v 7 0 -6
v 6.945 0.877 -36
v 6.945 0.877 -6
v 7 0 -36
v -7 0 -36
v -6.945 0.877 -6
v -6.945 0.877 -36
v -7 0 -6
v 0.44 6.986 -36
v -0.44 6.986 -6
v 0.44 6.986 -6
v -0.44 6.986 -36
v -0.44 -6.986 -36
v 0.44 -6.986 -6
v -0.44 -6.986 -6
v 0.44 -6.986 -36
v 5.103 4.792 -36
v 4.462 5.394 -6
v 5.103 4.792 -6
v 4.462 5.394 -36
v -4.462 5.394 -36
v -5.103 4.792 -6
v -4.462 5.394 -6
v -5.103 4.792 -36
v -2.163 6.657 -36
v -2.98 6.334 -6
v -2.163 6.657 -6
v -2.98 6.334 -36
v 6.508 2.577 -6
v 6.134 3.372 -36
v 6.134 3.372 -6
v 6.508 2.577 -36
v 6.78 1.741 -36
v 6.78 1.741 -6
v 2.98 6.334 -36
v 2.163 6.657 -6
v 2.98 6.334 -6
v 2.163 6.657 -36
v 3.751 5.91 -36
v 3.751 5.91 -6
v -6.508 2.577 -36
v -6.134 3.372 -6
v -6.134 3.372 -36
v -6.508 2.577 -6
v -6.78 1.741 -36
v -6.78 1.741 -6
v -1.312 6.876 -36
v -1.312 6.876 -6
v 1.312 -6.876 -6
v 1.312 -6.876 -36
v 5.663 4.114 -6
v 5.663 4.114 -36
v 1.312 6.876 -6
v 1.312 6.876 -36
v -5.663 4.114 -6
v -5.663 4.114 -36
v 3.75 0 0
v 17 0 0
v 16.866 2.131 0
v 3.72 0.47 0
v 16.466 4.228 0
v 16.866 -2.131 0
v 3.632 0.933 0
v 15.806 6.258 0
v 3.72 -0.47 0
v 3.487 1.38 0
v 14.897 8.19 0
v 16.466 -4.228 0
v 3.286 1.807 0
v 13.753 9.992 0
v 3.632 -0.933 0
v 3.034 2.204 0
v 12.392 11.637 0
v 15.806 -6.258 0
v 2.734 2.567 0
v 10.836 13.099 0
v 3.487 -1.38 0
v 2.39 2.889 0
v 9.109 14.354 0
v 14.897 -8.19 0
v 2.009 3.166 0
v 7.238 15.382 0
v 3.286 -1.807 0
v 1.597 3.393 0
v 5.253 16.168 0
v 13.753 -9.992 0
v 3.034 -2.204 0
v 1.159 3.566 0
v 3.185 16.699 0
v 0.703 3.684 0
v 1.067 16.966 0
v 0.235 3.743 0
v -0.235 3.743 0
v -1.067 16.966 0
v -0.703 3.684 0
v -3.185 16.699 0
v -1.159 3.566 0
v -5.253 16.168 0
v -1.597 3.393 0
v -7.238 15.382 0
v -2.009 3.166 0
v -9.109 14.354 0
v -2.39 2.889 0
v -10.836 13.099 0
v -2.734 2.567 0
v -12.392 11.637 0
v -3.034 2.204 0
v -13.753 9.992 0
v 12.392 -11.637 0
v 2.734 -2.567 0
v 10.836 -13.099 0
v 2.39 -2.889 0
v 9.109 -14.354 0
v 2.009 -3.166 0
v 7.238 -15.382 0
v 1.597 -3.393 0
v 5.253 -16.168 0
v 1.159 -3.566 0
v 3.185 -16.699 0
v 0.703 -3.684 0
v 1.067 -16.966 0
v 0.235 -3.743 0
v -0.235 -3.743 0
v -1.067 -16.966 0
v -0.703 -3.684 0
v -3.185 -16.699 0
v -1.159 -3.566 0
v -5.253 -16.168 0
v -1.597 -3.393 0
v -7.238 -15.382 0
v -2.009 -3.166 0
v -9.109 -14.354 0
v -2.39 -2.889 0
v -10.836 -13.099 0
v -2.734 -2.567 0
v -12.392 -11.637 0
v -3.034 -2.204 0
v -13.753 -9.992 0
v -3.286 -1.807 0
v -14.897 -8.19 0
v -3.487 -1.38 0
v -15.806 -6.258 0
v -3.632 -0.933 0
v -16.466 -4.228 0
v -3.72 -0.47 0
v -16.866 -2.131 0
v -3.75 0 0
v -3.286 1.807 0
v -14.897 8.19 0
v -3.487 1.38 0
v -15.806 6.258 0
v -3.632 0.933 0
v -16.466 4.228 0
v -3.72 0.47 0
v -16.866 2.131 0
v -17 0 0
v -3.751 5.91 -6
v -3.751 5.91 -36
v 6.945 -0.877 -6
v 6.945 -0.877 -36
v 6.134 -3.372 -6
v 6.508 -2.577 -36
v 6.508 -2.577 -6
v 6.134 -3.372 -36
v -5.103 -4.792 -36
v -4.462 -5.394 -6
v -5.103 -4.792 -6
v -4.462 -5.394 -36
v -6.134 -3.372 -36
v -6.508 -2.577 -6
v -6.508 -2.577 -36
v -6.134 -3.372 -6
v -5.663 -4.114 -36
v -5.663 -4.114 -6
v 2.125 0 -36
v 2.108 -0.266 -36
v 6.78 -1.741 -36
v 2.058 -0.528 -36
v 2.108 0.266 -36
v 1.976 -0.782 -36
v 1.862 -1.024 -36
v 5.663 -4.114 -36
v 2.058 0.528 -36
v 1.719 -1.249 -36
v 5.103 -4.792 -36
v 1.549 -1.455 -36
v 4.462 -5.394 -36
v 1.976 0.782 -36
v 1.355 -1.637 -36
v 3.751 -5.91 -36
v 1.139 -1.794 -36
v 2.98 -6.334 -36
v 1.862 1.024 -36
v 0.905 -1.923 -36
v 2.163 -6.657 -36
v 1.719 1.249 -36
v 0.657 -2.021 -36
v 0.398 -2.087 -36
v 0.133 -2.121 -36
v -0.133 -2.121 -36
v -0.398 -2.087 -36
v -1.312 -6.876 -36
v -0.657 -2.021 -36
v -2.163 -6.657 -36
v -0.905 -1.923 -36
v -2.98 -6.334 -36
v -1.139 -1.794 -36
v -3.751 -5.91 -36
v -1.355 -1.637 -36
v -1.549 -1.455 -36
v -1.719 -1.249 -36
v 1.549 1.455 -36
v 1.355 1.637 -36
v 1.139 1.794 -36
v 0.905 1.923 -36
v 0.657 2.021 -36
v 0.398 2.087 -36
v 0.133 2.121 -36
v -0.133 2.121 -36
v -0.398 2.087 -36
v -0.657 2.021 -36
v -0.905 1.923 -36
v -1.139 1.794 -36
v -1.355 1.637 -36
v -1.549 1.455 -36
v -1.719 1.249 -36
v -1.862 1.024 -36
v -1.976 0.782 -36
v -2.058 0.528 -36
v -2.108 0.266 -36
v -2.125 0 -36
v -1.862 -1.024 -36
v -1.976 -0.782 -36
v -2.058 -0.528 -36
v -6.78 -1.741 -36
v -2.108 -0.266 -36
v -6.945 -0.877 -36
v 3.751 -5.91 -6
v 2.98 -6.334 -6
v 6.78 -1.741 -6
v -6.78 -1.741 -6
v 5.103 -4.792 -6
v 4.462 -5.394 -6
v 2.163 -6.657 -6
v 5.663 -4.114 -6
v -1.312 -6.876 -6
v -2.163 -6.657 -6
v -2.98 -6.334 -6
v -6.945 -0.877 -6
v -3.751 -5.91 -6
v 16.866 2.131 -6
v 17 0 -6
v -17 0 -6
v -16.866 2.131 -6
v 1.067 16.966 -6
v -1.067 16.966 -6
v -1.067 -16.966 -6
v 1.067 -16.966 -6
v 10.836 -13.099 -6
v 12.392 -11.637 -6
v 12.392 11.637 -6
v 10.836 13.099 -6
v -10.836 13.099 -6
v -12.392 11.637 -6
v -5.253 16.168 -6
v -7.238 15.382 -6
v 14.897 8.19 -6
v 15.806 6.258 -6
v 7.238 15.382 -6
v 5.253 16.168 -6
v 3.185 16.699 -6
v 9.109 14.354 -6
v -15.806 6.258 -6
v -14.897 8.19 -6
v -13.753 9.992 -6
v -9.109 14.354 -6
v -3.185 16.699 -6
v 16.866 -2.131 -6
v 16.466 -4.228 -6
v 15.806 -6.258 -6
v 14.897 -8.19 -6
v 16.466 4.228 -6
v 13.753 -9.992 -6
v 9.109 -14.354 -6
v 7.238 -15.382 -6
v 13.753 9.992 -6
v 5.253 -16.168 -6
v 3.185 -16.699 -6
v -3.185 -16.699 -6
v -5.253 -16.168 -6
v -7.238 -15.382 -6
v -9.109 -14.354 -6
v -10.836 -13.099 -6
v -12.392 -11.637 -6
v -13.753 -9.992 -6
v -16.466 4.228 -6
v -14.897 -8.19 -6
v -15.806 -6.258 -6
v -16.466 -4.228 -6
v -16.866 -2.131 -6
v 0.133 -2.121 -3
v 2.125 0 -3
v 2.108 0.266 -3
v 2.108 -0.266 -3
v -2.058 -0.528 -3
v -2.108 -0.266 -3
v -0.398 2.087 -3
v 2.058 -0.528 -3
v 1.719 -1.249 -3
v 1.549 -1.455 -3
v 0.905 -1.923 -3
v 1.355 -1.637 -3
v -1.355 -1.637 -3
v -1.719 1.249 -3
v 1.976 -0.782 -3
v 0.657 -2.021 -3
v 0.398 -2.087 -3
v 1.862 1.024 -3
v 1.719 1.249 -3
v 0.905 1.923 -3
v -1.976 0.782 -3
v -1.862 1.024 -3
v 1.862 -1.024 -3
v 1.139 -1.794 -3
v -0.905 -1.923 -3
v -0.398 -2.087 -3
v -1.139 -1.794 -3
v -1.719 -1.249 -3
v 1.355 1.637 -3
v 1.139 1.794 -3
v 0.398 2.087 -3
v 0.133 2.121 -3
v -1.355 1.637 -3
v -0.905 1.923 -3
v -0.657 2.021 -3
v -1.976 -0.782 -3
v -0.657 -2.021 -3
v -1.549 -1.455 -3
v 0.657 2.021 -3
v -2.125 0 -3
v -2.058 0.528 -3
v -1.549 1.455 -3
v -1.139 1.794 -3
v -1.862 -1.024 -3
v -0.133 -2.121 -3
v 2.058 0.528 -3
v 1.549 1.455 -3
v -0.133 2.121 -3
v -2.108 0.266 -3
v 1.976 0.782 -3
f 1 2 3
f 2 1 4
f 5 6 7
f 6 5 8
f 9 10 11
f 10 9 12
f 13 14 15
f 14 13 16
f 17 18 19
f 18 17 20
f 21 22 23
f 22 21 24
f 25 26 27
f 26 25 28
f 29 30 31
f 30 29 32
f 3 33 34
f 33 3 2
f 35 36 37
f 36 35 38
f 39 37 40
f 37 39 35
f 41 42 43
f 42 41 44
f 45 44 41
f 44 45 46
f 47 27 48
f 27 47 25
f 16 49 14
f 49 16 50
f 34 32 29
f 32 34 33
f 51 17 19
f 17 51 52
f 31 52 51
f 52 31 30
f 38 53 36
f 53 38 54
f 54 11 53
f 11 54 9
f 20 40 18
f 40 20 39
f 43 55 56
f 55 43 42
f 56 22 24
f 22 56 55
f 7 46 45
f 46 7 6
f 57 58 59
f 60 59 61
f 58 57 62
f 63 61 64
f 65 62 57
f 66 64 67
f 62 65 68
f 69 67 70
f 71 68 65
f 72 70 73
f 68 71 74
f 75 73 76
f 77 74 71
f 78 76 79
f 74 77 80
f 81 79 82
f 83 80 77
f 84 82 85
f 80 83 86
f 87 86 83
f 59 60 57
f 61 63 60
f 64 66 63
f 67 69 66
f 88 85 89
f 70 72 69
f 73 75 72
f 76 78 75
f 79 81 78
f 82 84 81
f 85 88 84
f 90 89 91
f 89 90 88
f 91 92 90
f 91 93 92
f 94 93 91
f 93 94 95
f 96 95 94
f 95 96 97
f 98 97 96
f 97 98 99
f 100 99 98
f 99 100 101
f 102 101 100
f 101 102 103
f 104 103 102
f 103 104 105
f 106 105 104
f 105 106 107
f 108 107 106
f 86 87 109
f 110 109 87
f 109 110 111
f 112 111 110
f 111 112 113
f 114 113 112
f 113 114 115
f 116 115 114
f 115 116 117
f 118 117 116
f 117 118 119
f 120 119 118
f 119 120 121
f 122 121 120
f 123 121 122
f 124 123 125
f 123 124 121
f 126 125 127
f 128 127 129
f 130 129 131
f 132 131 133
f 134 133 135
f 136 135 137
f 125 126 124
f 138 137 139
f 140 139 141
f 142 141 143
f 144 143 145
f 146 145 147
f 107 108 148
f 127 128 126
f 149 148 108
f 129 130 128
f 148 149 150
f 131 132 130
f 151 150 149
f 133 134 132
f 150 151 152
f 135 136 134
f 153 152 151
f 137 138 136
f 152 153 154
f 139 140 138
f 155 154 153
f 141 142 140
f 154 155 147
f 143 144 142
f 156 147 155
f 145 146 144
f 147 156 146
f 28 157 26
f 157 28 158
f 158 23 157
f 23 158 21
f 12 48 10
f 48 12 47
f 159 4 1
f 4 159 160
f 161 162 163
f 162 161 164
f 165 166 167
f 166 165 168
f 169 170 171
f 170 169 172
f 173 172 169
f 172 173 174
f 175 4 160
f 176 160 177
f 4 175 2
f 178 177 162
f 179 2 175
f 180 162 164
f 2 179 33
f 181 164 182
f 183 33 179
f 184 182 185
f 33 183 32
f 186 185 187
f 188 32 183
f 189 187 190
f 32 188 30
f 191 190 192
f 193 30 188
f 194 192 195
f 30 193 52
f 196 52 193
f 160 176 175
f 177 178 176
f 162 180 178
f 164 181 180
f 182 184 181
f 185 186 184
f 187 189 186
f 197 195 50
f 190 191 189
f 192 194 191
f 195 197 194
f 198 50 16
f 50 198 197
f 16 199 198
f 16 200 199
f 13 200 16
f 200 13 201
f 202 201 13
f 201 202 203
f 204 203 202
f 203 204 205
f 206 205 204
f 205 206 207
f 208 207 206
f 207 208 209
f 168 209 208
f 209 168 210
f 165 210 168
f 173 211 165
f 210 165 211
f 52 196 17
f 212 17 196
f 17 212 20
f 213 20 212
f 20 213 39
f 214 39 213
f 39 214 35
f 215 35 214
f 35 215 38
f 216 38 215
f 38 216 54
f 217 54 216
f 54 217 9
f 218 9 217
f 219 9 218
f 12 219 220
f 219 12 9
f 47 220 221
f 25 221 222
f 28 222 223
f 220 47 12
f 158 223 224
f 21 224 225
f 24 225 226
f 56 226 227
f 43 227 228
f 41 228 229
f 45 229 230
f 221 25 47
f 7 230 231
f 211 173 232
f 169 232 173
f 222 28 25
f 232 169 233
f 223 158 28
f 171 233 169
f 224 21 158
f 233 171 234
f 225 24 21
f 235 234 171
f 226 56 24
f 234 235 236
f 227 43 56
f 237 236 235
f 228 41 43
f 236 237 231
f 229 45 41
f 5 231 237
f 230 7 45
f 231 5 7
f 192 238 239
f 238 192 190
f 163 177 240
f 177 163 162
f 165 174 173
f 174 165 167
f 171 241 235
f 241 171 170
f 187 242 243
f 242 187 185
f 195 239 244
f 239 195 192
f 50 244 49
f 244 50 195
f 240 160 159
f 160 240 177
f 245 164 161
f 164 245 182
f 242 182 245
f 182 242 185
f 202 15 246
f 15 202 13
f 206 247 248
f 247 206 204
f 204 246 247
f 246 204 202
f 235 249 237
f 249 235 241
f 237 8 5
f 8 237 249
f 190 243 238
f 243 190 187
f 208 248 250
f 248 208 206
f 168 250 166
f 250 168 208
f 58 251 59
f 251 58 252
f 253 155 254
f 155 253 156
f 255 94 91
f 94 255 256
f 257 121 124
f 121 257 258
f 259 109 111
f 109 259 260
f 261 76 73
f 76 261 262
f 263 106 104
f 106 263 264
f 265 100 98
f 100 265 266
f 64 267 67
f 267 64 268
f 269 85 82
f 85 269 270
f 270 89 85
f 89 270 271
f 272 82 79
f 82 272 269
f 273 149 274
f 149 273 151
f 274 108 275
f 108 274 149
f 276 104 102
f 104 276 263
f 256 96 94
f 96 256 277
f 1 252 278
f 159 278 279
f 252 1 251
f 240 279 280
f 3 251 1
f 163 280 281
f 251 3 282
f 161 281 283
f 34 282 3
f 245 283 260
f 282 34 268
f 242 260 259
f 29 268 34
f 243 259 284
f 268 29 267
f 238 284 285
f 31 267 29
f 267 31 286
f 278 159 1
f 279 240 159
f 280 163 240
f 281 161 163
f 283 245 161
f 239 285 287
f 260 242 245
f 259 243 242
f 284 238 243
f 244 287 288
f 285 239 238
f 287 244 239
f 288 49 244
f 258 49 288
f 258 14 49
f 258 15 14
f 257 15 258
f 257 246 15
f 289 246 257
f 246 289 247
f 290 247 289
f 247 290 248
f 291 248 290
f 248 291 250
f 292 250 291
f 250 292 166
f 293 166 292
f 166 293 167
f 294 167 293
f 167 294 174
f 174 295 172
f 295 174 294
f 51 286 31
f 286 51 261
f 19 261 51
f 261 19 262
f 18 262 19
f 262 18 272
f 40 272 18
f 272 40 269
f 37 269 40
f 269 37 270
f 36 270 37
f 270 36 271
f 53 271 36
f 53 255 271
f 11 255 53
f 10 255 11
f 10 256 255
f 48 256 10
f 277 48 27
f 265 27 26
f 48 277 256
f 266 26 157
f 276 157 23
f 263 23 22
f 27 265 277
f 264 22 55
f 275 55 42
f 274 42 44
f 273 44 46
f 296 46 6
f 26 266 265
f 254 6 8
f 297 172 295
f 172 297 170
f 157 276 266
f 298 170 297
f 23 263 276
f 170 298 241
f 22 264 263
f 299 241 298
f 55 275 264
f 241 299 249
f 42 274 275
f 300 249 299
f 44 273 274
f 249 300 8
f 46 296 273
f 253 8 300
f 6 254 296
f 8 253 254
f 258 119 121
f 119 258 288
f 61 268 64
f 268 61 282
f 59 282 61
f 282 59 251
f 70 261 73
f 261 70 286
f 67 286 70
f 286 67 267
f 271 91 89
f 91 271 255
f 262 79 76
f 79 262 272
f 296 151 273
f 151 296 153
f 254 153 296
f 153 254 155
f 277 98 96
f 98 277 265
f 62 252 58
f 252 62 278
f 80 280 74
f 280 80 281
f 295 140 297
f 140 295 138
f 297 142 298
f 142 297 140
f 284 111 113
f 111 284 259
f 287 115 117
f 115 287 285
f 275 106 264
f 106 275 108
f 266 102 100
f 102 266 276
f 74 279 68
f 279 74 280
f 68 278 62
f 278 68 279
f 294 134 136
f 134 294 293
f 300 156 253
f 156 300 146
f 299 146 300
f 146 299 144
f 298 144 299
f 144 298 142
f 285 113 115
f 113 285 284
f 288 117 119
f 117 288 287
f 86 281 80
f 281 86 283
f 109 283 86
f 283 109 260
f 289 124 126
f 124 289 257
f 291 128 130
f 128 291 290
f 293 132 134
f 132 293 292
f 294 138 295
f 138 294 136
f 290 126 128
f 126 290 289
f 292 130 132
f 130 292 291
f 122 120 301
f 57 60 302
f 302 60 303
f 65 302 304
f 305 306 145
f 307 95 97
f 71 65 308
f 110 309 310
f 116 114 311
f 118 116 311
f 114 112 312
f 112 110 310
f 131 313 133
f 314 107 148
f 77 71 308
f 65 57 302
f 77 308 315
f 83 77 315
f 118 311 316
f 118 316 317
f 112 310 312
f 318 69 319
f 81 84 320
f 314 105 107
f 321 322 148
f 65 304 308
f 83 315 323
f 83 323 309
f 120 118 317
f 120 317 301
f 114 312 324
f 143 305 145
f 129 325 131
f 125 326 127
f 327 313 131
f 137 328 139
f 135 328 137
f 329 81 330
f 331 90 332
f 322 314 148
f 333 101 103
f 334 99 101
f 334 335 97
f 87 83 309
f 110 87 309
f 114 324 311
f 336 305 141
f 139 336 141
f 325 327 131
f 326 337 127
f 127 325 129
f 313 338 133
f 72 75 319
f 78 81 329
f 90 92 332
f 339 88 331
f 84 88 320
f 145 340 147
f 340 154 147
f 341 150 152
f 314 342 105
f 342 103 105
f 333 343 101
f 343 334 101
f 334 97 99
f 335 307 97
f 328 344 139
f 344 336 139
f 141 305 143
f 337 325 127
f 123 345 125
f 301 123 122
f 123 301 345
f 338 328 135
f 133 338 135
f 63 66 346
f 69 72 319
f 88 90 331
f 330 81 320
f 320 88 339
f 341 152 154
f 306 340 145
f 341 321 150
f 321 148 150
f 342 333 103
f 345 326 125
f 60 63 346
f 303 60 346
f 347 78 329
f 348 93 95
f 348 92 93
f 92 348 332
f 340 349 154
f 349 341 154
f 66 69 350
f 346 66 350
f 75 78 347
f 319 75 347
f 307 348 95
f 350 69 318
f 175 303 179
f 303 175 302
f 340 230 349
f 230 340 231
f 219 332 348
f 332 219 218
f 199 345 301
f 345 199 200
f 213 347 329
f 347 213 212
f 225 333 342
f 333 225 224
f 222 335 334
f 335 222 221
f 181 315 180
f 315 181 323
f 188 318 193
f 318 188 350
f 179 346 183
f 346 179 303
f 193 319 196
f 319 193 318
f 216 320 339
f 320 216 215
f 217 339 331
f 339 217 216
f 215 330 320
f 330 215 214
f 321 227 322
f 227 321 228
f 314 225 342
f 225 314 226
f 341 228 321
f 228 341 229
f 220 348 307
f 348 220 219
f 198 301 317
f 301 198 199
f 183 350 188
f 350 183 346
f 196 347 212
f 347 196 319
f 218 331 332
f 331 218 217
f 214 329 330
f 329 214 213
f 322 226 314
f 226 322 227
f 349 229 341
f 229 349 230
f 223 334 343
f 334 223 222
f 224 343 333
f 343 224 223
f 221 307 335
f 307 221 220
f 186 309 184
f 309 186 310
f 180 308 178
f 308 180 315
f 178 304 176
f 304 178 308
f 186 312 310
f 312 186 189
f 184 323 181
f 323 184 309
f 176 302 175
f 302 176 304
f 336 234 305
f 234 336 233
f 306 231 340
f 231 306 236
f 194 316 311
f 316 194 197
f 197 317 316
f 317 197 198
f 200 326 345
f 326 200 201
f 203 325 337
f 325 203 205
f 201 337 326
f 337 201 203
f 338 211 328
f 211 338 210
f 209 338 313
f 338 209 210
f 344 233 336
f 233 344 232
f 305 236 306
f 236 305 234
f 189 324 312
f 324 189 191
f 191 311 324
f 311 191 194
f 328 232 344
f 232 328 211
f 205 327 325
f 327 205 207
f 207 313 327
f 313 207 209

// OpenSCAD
$fn = 50;


difference() {
	union() {
		translate(v = [0, 0, -36.0000000000]) {
			cylinder(h = 36, r = 7.0000000000);
		}
		translate(v = [0, 0, -6.0000000000]) {
			cylinder(h = 6, r = 17.0000000000);
		}
	}
	union() {
		translate(v = [0, 0, 0]) {
			rotate(a = [0, 0, 0]) {
				difference() {
					union() {
						#translate(v = [0, 0, -36.0000000000]) {
							cylinder(h = 36, r = 2.0000000000);
						}
						#translate(v = [0, 0, -3]) {
							cylinder(h = 3, r1 = 2.1250000000, r2 = 3.7500000000);
						}
						#translate(v = [0, 0, -36.0000000000]) {
							cylinder(h = 36, r = 2.1250000000);
						}
						#translate(v = [0, 0, -36.0000000000]) {
							cylinder(h = 36, r = 2.0000000000);
						}
					}
					union();
				}
			}
		}
	}
}
